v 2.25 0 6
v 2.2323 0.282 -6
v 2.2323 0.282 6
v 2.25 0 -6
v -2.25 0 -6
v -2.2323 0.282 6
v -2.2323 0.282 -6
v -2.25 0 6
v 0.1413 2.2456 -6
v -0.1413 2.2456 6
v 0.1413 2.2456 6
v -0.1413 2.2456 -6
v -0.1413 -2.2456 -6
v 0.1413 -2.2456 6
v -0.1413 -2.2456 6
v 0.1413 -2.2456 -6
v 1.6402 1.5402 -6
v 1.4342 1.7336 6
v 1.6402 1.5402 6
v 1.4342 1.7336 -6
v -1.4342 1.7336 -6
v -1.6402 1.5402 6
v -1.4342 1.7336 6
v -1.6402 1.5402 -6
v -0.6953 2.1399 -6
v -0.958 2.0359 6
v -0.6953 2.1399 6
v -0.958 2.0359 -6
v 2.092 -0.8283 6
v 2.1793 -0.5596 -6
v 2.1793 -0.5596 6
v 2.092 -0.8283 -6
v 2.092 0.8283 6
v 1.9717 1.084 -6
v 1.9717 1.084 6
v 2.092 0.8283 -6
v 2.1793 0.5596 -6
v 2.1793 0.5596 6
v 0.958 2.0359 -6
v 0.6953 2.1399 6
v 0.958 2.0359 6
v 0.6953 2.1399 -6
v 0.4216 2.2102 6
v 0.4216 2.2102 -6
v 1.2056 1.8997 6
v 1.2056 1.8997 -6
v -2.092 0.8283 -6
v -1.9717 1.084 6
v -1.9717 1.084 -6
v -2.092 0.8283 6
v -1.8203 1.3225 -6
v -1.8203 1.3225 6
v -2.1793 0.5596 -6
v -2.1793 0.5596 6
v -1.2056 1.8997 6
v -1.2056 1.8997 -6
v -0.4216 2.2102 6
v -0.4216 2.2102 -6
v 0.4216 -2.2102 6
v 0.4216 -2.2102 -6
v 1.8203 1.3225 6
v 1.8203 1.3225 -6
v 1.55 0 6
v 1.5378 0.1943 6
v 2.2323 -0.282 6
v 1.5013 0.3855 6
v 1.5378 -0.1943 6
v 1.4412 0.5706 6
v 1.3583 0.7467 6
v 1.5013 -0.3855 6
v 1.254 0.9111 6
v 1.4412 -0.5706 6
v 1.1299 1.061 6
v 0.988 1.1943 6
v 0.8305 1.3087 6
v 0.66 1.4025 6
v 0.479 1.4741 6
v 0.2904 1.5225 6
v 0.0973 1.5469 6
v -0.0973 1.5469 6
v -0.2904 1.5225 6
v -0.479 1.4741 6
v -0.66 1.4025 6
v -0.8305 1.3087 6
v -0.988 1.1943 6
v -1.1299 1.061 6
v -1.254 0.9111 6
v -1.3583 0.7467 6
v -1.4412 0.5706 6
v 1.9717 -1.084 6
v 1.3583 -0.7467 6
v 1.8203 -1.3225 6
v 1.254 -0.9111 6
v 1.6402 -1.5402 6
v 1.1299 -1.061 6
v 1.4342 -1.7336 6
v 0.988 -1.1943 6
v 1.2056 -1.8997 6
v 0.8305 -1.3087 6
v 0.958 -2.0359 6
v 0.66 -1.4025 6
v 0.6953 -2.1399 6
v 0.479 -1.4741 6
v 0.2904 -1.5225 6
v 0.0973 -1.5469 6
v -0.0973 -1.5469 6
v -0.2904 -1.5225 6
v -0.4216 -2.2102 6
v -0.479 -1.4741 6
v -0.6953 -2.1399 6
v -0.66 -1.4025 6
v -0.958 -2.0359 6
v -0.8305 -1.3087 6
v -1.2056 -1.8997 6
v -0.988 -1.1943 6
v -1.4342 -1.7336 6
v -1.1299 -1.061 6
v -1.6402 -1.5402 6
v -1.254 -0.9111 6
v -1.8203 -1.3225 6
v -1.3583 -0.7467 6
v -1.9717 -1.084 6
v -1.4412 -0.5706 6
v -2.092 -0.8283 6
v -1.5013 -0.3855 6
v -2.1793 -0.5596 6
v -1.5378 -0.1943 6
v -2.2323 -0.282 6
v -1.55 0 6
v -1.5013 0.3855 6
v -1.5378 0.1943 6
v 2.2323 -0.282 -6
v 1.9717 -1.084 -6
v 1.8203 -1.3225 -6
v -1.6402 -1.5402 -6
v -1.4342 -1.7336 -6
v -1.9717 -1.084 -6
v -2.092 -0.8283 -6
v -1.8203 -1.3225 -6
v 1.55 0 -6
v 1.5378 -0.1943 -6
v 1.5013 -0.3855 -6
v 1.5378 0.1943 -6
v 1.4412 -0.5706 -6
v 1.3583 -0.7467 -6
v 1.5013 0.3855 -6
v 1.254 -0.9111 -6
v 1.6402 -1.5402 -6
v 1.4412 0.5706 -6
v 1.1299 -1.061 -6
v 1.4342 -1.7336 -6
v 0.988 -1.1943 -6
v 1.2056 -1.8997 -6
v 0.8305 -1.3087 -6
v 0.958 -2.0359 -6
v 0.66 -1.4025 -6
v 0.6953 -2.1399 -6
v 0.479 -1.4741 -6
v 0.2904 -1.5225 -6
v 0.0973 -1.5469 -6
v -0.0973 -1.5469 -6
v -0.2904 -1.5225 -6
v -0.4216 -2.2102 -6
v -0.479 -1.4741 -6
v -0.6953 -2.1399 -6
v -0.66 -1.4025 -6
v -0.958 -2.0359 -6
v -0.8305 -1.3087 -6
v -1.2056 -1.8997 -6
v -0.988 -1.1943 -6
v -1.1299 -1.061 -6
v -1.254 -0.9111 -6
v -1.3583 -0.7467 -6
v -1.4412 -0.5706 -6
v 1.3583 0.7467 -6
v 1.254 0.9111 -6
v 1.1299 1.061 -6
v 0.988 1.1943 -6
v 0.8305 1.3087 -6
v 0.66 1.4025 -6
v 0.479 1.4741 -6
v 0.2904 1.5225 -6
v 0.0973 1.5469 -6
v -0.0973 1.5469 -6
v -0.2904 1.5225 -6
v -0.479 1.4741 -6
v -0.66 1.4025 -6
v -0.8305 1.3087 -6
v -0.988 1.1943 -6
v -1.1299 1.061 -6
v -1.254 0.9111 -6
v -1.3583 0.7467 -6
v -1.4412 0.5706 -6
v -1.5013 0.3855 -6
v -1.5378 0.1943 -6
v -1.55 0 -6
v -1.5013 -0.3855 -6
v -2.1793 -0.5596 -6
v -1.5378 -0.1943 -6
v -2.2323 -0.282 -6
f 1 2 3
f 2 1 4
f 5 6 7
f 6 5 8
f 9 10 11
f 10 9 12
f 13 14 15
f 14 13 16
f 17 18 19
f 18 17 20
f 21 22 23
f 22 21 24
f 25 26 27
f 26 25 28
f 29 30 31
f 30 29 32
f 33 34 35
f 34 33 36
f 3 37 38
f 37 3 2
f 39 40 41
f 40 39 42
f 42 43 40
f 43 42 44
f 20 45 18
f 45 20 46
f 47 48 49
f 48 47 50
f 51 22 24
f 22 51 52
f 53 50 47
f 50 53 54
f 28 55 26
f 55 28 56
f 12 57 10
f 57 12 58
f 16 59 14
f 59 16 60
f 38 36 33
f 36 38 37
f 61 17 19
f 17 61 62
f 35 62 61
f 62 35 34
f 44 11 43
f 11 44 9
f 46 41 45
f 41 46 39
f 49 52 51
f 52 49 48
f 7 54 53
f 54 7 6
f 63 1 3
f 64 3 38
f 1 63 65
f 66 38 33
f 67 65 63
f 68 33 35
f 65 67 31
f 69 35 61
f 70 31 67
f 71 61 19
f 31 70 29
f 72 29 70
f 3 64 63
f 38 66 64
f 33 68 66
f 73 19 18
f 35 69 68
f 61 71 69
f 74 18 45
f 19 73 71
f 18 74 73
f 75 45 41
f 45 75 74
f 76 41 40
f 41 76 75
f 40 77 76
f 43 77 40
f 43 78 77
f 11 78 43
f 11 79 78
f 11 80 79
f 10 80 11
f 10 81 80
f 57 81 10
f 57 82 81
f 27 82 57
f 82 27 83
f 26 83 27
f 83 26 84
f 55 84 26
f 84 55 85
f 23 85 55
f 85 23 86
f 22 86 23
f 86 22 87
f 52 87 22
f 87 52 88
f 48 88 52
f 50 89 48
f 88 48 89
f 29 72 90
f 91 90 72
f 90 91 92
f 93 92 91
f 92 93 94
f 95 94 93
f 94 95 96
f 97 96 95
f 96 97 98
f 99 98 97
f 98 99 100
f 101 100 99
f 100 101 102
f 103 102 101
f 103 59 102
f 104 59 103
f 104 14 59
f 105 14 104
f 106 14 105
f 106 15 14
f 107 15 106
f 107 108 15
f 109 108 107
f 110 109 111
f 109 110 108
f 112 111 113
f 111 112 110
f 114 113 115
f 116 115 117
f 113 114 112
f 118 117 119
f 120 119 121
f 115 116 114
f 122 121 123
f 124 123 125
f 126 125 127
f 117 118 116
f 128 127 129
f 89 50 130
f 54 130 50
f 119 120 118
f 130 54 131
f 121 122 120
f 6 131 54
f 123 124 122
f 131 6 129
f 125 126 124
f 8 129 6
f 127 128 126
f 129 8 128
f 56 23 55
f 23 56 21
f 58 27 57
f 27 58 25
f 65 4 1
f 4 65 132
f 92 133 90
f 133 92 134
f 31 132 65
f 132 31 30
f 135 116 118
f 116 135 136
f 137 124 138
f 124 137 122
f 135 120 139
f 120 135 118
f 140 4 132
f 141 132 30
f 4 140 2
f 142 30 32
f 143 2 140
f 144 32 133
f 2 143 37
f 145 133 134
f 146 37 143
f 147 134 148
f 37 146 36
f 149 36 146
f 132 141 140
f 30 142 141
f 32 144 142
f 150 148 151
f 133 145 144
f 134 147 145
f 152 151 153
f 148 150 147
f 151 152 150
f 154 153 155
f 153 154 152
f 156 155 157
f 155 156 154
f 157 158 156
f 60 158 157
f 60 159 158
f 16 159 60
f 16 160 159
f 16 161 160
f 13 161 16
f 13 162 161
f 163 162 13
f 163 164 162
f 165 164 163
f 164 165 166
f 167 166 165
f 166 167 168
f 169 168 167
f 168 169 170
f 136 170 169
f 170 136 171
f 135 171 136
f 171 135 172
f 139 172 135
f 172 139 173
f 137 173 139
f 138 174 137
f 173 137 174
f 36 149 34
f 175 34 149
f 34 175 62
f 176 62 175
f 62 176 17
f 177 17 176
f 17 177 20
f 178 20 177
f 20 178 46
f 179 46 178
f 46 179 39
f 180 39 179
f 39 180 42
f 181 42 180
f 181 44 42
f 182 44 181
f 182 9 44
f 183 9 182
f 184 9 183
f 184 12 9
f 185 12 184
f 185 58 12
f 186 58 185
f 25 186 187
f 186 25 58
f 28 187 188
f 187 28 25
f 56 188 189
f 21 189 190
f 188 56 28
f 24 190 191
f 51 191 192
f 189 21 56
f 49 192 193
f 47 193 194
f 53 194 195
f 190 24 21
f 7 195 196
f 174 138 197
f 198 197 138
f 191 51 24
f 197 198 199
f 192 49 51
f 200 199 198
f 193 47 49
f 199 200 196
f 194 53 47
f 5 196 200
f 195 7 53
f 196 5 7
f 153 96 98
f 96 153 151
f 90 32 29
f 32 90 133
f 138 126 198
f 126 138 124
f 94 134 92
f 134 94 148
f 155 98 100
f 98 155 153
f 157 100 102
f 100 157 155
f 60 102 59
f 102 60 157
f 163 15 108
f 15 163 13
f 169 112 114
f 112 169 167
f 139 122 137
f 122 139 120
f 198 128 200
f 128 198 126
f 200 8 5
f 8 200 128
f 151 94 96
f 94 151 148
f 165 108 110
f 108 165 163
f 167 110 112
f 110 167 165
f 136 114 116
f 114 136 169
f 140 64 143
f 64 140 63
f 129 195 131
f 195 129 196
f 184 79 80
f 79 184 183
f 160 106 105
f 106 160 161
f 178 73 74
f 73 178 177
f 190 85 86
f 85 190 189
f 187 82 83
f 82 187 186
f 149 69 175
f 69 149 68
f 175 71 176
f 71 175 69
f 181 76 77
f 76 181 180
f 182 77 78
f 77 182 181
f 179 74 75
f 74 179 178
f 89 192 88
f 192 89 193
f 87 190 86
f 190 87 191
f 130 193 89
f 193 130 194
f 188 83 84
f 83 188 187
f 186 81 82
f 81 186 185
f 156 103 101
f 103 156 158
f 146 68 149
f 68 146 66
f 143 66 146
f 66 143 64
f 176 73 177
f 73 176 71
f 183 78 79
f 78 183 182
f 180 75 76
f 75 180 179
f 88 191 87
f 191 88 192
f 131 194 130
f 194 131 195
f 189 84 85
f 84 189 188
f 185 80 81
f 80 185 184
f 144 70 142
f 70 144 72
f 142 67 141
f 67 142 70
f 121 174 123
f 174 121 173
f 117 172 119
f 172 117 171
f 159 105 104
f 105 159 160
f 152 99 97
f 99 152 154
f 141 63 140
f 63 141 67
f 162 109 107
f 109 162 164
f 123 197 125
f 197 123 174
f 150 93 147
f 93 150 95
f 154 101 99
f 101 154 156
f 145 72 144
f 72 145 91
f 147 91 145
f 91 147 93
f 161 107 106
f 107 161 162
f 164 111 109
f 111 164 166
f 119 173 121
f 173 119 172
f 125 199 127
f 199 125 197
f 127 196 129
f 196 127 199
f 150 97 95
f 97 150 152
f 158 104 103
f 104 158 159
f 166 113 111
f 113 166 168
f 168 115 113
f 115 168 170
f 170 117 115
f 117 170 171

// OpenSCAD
$fn = 50;


difference() {
	union() {
		translate(v = [0, 0, -6.0000000000]) {
			cylinder(h = 12, r = 2.2500000000);
		}
	}
	union() {
		translate(v = [0, 0, -100.0000000000]) {
			cylinder(h = 200, r = 1.5500000000);
		}
	}
}
